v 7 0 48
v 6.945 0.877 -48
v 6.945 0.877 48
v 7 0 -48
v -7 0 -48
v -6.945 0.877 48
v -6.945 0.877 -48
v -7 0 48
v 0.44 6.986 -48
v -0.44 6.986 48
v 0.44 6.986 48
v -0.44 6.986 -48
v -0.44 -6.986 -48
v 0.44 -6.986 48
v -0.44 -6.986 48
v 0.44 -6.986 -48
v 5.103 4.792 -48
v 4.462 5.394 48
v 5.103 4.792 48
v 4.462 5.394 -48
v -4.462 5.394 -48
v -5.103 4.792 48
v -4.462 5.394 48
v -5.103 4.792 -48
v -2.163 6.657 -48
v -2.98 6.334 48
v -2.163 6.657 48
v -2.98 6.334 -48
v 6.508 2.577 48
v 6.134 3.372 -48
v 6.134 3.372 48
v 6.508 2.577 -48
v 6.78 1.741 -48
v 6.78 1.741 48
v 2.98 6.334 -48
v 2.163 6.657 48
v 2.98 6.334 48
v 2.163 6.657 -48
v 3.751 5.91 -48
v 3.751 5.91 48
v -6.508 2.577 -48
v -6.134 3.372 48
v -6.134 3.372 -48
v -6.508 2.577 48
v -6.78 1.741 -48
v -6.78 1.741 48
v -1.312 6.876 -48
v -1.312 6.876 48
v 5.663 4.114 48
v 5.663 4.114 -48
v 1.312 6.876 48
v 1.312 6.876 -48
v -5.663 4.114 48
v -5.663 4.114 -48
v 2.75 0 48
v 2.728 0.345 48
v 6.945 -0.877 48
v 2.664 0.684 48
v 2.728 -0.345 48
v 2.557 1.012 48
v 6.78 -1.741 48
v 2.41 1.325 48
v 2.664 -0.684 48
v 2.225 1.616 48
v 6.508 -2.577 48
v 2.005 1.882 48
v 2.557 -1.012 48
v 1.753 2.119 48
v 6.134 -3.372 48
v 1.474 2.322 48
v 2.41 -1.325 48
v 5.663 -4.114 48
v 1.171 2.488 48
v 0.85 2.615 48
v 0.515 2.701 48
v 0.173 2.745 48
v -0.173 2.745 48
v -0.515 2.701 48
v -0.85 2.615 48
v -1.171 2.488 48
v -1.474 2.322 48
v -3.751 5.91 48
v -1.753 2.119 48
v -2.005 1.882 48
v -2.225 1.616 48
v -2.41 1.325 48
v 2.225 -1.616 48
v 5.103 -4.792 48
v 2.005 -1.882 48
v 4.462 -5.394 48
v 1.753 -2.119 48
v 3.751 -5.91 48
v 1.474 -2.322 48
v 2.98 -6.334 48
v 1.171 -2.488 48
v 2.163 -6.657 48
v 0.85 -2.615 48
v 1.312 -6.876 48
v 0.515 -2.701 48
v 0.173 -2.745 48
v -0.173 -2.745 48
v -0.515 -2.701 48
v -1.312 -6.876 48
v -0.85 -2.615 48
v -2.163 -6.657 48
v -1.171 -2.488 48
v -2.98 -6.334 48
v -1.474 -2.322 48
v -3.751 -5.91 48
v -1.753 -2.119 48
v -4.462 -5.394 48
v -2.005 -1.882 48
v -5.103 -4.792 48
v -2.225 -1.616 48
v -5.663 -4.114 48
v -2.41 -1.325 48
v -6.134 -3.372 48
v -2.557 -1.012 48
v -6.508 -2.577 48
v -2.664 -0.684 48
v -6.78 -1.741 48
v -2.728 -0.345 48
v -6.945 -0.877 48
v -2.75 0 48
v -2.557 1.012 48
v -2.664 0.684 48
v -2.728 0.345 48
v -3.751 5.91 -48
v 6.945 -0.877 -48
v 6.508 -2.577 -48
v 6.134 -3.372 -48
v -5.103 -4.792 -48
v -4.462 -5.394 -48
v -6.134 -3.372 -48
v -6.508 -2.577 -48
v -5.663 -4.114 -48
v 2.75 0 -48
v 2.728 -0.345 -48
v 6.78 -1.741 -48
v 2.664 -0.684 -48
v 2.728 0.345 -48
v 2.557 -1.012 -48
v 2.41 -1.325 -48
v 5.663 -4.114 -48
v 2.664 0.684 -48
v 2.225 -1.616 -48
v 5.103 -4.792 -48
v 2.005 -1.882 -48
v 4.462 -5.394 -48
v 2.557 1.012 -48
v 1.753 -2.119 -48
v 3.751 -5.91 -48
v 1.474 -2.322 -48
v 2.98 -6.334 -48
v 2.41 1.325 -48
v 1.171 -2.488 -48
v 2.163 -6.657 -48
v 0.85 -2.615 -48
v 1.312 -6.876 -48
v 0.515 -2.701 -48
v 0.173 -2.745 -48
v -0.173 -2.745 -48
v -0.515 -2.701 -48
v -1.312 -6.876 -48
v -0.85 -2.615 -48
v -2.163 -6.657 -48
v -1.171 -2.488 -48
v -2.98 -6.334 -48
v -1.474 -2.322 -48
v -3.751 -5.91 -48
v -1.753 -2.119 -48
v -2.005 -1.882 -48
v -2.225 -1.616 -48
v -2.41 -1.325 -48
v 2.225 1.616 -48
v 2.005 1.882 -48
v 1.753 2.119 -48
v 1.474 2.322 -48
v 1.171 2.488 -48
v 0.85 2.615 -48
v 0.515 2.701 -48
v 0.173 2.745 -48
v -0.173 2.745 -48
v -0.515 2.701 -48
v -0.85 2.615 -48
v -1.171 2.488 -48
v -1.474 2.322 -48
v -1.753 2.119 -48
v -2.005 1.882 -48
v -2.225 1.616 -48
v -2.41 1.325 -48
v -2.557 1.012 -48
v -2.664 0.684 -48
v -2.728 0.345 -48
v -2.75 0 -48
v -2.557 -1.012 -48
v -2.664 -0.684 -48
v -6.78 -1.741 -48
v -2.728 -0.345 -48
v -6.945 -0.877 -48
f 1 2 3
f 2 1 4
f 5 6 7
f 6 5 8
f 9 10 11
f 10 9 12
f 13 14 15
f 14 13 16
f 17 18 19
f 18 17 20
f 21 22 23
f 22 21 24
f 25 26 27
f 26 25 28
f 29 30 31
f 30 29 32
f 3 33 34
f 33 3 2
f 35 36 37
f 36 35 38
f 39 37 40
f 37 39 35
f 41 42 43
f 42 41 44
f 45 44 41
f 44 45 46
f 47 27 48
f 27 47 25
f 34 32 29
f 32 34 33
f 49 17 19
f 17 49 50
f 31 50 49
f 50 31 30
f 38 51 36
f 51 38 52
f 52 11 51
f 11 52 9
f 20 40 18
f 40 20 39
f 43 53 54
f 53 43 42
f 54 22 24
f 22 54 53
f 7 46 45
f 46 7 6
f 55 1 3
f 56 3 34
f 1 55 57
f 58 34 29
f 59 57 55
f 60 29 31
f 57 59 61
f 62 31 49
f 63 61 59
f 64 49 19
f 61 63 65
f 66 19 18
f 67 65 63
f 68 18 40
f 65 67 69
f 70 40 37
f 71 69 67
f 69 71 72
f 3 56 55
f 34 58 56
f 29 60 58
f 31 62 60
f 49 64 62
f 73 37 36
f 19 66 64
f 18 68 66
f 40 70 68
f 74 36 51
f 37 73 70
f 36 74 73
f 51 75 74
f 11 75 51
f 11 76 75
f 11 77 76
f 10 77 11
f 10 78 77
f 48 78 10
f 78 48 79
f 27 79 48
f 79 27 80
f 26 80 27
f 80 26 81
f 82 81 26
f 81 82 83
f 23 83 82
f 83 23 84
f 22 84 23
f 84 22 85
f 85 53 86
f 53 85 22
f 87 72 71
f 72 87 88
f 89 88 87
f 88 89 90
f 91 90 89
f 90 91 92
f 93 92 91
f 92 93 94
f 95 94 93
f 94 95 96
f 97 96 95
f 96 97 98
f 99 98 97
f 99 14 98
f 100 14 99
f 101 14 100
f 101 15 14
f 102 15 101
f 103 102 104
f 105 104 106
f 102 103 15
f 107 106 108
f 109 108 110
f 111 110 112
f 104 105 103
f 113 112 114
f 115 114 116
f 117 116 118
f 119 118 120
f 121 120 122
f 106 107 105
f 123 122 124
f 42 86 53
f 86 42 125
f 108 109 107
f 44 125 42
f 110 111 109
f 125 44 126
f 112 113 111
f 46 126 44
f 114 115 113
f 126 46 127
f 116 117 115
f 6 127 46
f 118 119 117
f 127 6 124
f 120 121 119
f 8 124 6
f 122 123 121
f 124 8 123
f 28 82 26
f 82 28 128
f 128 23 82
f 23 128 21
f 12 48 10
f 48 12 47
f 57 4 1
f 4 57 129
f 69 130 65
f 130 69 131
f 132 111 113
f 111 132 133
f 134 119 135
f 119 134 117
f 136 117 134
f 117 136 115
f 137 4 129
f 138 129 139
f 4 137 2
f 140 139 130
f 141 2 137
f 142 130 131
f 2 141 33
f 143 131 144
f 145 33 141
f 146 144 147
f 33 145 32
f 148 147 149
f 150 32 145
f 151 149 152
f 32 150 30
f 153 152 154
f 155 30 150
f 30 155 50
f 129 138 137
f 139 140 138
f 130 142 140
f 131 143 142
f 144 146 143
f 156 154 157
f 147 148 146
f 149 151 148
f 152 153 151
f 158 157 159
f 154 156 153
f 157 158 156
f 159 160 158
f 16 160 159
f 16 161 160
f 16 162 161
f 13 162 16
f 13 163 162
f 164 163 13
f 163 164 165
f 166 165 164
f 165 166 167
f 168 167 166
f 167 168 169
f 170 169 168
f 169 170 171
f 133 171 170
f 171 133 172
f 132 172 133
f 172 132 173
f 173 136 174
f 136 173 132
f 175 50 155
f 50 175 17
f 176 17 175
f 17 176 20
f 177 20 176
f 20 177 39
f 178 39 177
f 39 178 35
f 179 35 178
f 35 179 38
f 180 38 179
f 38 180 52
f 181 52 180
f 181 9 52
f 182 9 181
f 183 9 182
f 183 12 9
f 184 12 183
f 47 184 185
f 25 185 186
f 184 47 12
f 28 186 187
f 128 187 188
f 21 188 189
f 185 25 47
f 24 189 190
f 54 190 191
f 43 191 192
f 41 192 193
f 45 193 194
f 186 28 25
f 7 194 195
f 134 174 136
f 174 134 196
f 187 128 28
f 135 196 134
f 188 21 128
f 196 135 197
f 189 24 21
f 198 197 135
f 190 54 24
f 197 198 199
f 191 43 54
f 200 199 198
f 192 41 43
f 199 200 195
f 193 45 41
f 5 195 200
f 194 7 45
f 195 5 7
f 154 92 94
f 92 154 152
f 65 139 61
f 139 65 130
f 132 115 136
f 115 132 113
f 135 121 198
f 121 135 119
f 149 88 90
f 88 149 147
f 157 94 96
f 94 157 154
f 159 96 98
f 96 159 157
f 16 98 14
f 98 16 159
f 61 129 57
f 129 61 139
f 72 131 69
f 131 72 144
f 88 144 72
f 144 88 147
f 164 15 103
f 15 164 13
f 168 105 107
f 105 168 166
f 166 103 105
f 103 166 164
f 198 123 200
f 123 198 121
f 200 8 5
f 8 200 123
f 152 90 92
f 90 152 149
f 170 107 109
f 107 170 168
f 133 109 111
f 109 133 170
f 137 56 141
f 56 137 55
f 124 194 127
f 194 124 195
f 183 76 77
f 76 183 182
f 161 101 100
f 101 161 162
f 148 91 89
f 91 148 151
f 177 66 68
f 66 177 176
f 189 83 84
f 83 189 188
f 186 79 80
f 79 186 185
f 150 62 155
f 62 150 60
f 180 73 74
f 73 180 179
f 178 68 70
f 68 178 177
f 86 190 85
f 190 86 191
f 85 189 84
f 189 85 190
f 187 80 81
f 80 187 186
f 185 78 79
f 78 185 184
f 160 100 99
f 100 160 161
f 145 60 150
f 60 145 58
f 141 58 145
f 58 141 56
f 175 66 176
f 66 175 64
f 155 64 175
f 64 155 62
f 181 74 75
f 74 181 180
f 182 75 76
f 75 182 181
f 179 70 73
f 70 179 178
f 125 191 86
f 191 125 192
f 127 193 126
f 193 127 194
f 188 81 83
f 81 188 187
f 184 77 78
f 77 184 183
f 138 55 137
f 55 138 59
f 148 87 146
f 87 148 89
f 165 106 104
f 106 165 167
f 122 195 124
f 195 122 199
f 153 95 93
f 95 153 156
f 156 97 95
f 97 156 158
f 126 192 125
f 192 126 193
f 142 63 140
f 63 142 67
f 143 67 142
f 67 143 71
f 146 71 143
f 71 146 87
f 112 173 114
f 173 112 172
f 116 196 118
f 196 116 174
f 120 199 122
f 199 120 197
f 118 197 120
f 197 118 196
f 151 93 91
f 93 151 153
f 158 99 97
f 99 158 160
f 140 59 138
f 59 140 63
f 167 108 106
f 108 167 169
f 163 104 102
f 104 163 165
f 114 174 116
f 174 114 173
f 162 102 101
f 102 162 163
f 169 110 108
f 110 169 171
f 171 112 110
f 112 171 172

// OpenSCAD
$fn = 50;


difference() {
	union() {
		translate(v = [0, 0, -48.0000000000]) {
			cylinder(h = 96, r = 7.0000000000);
		}
	}
	union() {
		translate(v = [0, 0, -100.0000000000]) {
			cylinder(h = 200, r = 2.7500000000);
		}
	}
}
